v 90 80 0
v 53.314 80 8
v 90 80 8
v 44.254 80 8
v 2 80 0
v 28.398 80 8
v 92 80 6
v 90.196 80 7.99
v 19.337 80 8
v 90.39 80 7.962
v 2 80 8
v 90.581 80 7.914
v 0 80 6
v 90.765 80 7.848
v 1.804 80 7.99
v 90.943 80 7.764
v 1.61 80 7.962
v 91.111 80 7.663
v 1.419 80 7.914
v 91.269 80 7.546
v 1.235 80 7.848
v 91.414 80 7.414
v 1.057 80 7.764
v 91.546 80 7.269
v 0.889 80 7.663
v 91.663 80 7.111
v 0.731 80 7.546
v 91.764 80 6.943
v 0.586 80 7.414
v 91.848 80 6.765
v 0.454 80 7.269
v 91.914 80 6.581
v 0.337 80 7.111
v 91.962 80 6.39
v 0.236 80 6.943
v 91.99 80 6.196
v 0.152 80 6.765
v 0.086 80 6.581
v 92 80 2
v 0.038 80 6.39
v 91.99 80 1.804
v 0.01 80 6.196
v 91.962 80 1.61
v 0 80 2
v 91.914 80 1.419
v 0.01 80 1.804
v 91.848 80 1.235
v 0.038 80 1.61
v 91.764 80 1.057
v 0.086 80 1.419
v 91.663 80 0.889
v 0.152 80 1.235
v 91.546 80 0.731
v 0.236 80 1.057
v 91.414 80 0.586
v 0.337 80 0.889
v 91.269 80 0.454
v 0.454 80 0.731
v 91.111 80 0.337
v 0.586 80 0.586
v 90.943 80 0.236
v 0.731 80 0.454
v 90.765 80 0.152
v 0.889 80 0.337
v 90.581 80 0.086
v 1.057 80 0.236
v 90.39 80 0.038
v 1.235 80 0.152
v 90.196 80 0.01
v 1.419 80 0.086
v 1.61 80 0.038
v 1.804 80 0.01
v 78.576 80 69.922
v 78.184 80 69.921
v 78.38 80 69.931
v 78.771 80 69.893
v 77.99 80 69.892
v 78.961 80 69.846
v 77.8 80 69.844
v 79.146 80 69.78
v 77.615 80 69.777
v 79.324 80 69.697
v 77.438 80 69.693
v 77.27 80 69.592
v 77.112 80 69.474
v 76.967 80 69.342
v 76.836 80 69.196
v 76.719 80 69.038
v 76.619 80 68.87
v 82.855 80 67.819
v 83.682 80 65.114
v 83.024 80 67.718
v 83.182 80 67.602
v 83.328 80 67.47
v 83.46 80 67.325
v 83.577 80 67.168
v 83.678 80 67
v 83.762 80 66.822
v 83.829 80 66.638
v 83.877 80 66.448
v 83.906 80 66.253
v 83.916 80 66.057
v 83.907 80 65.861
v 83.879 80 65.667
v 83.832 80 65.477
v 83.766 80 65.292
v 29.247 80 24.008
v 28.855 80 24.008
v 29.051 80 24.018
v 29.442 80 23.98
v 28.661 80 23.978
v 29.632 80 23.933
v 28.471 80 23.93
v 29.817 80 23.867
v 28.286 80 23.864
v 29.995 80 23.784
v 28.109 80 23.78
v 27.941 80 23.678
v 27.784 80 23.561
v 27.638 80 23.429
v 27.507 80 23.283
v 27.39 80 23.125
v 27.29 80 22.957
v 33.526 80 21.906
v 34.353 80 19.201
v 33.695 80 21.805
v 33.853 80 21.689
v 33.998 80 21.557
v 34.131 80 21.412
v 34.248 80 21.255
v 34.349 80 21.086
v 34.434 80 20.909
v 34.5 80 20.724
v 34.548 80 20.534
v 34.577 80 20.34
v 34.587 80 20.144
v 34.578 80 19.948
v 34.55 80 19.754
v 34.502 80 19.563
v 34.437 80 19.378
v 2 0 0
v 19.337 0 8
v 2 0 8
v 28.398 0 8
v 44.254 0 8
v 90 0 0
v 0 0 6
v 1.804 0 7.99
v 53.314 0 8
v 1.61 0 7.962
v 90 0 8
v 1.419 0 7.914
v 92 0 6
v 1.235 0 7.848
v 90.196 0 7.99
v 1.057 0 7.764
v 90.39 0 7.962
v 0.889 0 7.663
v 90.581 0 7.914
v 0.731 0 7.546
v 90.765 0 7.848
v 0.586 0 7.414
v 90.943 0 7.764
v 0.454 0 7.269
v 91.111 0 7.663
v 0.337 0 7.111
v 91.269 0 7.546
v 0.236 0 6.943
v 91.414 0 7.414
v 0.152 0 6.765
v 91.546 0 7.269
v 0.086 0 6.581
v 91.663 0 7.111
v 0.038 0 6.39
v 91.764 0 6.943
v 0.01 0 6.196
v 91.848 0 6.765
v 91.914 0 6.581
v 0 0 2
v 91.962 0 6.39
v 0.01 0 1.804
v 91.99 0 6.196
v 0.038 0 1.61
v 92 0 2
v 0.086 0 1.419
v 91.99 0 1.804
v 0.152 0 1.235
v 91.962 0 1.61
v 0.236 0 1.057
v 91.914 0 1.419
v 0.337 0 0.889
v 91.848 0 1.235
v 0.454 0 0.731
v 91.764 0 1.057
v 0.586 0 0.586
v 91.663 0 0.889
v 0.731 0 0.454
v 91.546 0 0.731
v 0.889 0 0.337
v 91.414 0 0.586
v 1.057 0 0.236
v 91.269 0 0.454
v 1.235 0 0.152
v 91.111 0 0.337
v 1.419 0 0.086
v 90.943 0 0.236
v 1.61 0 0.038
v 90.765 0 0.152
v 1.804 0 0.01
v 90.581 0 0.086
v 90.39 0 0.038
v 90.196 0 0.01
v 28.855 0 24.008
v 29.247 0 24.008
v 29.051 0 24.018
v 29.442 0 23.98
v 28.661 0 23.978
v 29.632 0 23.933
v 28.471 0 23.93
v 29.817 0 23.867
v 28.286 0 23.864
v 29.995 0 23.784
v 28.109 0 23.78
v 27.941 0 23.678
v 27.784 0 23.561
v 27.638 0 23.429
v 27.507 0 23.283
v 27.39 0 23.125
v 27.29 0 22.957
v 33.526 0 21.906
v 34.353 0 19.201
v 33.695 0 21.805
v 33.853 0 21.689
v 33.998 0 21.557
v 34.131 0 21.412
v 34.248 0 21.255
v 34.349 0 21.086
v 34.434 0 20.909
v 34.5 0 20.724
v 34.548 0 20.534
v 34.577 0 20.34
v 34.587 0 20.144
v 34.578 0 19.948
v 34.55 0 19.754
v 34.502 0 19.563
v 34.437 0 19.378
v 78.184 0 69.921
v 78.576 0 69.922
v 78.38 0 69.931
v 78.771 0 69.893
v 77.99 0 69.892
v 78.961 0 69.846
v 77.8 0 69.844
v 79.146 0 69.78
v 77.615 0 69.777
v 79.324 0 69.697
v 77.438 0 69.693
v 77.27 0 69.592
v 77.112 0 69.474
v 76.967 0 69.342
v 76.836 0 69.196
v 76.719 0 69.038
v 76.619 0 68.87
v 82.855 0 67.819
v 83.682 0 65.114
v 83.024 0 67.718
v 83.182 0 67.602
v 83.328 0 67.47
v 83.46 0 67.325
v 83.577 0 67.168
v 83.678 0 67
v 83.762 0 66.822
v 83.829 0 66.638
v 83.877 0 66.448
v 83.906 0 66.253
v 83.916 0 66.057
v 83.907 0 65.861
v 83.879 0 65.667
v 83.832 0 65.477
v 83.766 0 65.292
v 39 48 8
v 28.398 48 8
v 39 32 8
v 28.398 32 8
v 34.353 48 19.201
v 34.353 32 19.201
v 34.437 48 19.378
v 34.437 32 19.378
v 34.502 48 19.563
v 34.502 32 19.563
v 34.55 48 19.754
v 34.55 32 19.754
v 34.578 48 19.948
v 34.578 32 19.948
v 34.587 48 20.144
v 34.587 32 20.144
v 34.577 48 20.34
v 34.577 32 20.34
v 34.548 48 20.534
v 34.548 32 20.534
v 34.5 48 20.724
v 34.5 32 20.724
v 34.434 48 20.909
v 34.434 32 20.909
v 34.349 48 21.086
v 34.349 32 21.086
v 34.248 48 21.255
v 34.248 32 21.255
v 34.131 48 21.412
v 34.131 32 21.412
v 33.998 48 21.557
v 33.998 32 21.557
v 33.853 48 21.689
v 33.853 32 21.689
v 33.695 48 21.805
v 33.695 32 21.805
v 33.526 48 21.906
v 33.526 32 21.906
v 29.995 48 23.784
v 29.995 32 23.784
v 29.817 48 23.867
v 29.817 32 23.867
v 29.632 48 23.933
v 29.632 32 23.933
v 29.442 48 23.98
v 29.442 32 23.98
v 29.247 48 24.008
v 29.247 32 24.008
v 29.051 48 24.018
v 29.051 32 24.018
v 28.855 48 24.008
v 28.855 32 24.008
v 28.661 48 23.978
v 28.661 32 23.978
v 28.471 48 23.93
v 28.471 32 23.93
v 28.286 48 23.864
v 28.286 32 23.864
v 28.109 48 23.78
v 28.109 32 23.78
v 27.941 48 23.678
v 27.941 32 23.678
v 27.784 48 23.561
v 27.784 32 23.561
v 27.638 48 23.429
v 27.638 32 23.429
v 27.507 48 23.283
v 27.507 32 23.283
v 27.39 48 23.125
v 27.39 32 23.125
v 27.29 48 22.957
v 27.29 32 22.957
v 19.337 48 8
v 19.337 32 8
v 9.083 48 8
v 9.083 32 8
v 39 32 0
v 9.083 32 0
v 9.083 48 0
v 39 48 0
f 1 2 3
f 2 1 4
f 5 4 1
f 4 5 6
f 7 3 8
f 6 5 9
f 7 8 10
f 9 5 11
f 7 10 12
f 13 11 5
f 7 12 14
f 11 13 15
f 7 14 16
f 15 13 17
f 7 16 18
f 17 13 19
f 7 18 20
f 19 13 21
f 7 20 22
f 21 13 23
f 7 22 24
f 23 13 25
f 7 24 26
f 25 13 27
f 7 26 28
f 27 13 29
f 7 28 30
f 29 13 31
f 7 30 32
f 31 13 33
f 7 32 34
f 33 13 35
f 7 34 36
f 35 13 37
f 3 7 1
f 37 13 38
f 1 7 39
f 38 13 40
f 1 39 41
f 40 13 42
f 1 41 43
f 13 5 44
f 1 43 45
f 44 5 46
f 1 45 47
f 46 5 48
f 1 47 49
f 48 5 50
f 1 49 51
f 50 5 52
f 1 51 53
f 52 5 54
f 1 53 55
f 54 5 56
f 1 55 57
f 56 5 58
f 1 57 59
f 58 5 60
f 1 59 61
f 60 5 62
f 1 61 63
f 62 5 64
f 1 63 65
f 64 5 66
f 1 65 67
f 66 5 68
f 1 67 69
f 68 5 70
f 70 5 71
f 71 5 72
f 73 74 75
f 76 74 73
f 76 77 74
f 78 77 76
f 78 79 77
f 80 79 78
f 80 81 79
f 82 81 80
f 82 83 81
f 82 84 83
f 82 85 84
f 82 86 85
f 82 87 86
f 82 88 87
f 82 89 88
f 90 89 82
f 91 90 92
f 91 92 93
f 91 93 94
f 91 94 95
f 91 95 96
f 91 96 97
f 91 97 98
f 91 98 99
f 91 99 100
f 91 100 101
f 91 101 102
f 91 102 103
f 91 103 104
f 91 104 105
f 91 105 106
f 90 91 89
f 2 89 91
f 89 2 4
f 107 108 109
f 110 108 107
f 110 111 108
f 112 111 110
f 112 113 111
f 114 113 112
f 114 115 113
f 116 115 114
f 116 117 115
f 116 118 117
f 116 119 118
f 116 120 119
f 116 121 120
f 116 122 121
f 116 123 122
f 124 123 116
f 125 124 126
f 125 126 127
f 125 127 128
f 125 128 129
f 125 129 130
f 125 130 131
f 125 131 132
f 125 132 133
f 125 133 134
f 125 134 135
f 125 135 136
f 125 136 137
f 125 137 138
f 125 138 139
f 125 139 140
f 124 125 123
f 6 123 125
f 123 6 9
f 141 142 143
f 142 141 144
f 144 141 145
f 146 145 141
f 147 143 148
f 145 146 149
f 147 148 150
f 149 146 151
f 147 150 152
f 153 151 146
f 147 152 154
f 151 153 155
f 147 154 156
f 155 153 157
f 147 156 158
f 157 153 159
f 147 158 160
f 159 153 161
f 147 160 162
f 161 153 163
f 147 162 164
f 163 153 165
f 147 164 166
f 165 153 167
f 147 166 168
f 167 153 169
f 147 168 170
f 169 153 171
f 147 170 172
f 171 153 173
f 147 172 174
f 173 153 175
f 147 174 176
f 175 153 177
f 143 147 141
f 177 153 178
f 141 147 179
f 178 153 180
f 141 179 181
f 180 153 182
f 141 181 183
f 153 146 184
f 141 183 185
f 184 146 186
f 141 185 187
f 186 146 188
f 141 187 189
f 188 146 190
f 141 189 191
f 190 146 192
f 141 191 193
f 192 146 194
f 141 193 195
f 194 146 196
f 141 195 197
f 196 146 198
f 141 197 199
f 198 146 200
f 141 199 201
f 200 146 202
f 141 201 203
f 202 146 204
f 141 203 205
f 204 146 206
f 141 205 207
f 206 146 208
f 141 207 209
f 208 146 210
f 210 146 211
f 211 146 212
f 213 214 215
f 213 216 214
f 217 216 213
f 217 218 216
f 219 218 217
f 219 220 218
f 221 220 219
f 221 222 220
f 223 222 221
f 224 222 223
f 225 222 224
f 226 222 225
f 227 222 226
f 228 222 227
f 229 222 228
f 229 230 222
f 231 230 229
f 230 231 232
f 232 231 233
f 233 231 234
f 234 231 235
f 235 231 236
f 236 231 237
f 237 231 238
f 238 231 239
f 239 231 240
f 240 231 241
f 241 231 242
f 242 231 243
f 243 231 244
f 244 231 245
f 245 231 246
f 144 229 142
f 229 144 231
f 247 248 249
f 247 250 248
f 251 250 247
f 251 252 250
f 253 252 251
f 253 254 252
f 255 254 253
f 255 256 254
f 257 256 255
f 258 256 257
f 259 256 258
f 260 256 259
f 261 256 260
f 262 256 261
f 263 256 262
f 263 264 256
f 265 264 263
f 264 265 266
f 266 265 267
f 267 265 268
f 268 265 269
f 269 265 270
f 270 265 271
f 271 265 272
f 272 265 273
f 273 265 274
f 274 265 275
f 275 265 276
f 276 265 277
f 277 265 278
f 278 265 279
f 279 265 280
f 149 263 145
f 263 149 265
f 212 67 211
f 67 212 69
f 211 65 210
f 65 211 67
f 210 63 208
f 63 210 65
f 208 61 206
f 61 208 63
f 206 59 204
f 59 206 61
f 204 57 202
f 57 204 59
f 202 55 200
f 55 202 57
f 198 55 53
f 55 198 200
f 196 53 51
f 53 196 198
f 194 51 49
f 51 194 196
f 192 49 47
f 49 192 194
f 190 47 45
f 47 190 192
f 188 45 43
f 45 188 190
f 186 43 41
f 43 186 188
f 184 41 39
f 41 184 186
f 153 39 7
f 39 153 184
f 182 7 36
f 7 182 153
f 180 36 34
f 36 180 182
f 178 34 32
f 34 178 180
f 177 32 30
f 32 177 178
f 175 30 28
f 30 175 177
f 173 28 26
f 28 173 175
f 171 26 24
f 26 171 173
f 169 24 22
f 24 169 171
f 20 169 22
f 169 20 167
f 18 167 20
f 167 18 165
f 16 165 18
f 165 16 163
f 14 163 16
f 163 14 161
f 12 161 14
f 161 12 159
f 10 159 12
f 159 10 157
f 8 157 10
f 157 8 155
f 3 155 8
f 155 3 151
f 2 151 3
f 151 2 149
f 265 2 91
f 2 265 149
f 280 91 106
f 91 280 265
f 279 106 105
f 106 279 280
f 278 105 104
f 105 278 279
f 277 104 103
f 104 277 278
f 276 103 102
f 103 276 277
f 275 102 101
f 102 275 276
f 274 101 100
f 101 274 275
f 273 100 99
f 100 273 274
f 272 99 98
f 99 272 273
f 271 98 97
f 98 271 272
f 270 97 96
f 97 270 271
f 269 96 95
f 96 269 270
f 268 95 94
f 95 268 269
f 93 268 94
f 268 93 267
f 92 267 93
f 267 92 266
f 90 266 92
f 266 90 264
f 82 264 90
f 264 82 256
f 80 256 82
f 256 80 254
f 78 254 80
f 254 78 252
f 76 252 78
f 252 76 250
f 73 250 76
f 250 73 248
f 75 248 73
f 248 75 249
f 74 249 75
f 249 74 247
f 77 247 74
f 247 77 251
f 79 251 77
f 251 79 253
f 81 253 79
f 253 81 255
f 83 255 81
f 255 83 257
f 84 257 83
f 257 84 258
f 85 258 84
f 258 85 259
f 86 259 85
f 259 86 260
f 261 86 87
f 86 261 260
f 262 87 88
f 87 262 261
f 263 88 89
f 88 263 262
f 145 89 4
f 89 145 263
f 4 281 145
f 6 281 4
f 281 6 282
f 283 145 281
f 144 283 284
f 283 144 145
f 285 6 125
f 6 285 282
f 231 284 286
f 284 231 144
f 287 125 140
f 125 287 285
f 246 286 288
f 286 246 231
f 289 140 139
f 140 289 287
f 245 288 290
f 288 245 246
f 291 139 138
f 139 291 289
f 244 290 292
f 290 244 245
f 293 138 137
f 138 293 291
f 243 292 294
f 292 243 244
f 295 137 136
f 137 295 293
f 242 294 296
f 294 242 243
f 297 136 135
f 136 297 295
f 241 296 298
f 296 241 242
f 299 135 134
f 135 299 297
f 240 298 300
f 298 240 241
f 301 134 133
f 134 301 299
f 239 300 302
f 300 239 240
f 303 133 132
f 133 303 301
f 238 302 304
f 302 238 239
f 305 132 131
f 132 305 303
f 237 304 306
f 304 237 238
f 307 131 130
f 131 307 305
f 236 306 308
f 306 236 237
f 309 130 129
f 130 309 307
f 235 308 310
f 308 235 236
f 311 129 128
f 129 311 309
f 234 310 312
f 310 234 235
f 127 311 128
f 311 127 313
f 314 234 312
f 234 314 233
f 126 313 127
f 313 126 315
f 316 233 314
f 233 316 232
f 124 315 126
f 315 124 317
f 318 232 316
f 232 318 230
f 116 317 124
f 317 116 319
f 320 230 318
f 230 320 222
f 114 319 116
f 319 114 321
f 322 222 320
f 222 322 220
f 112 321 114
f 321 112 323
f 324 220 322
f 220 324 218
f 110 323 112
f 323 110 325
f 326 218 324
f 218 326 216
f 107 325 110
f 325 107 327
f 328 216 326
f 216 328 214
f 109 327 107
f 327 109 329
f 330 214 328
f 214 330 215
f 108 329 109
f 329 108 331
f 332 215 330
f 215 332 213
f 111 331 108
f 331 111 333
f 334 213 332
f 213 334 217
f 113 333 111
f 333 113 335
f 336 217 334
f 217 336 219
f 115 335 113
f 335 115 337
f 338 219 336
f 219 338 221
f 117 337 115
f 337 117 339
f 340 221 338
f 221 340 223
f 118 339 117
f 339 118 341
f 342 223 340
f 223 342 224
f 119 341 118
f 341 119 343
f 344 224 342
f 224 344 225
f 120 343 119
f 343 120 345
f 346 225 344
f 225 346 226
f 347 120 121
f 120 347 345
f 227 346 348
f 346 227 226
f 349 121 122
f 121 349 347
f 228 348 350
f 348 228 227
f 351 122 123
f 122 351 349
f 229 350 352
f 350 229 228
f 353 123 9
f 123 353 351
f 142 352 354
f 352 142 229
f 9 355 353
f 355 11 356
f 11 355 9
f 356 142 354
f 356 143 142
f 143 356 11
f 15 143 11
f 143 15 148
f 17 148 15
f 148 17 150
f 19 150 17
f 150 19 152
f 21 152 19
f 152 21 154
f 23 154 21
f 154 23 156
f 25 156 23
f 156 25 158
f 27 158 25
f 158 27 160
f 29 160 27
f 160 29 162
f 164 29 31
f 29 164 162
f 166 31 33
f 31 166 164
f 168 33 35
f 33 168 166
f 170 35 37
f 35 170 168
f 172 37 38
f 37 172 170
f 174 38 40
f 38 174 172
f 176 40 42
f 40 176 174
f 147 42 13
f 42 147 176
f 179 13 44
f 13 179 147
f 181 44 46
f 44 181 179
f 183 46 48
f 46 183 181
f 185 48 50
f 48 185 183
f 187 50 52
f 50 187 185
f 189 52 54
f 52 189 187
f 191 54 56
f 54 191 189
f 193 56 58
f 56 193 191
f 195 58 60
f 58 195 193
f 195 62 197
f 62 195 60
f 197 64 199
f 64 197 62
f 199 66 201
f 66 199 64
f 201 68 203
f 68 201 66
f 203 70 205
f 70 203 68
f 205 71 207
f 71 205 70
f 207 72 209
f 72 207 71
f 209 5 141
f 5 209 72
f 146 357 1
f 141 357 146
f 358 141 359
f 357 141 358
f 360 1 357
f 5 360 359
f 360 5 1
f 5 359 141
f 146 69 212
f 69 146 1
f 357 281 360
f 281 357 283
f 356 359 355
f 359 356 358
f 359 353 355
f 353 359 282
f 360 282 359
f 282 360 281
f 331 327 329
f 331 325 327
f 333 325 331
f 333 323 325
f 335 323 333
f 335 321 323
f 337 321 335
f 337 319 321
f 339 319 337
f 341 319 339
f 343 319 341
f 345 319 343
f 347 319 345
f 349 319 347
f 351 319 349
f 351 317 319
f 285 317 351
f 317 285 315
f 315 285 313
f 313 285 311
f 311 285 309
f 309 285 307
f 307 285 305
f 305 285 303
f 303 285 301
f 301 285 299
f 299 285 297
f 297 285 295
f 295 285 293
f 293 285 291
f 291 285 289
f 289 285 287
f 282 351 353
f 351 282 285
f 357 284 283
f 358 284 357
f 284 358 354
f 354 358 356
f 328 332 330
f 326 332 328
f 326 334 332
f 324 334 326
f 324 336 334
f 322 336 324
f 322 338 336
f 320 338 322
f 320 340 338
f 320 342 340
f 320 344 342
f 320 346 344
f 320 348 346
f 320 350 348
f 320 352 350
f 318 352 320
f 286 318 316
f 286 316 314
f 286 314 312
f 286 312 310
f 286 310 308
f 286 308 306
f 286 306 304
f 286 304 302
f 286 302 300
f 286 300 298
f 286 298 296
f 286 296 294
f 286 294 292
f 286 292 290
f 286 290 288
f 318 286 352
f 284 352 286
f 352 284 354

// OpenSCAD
// Parametric phone stand for FDM printing (Bambu Lab friendly)
// Prints upright with no supports: back rest leans 28 deg from vertical.

$fn = 64;

w       = 80;    // overall width (mm)
t       = 8;     // wall thickness
angle   = 62;    // recline angle from horizontal
slot    = 14;    // phone slot width -- fits a phone with a case
lip_l   = 20;    // front lip length along its face
back_l  = 80;    // back rest length along its face
base_d  = 92;    // base depth
cable_w = 16;    // charging-cable notch width
r       = 2;     // corner rounding

x_back = 40;                          // back rest anchor on the base
x_lip  = x_back - (slot + t) / sin(angle);

// Side silhouette
module profile() {
    offset(r = r) offset(delta = -r)
    intersection() {
        union() {
            square([base_d, t]);                                        // base
            translate([x_back, 0]) rotate(angle - 90) square([t, back_l]);      // back rest
            translate([x_lip, 0])  rotate(angle - 90) square([t, lip_l + t]);   // front lip
        }
        translate([-20, 0]) square([base_d + 80, 200]);                 // clip below ground
    }
}

difference() {
    translate([0, w, 0]) rotate([90, 0, 0]) linear_extrude(w) profile();
    // charging-cable notch through the lip and slot floor
    translate([x_lip - 6, w/2 - cable_w/2, -1])
        cube([(x_back - x_lip) + 5, cable_w, 40]);
}
